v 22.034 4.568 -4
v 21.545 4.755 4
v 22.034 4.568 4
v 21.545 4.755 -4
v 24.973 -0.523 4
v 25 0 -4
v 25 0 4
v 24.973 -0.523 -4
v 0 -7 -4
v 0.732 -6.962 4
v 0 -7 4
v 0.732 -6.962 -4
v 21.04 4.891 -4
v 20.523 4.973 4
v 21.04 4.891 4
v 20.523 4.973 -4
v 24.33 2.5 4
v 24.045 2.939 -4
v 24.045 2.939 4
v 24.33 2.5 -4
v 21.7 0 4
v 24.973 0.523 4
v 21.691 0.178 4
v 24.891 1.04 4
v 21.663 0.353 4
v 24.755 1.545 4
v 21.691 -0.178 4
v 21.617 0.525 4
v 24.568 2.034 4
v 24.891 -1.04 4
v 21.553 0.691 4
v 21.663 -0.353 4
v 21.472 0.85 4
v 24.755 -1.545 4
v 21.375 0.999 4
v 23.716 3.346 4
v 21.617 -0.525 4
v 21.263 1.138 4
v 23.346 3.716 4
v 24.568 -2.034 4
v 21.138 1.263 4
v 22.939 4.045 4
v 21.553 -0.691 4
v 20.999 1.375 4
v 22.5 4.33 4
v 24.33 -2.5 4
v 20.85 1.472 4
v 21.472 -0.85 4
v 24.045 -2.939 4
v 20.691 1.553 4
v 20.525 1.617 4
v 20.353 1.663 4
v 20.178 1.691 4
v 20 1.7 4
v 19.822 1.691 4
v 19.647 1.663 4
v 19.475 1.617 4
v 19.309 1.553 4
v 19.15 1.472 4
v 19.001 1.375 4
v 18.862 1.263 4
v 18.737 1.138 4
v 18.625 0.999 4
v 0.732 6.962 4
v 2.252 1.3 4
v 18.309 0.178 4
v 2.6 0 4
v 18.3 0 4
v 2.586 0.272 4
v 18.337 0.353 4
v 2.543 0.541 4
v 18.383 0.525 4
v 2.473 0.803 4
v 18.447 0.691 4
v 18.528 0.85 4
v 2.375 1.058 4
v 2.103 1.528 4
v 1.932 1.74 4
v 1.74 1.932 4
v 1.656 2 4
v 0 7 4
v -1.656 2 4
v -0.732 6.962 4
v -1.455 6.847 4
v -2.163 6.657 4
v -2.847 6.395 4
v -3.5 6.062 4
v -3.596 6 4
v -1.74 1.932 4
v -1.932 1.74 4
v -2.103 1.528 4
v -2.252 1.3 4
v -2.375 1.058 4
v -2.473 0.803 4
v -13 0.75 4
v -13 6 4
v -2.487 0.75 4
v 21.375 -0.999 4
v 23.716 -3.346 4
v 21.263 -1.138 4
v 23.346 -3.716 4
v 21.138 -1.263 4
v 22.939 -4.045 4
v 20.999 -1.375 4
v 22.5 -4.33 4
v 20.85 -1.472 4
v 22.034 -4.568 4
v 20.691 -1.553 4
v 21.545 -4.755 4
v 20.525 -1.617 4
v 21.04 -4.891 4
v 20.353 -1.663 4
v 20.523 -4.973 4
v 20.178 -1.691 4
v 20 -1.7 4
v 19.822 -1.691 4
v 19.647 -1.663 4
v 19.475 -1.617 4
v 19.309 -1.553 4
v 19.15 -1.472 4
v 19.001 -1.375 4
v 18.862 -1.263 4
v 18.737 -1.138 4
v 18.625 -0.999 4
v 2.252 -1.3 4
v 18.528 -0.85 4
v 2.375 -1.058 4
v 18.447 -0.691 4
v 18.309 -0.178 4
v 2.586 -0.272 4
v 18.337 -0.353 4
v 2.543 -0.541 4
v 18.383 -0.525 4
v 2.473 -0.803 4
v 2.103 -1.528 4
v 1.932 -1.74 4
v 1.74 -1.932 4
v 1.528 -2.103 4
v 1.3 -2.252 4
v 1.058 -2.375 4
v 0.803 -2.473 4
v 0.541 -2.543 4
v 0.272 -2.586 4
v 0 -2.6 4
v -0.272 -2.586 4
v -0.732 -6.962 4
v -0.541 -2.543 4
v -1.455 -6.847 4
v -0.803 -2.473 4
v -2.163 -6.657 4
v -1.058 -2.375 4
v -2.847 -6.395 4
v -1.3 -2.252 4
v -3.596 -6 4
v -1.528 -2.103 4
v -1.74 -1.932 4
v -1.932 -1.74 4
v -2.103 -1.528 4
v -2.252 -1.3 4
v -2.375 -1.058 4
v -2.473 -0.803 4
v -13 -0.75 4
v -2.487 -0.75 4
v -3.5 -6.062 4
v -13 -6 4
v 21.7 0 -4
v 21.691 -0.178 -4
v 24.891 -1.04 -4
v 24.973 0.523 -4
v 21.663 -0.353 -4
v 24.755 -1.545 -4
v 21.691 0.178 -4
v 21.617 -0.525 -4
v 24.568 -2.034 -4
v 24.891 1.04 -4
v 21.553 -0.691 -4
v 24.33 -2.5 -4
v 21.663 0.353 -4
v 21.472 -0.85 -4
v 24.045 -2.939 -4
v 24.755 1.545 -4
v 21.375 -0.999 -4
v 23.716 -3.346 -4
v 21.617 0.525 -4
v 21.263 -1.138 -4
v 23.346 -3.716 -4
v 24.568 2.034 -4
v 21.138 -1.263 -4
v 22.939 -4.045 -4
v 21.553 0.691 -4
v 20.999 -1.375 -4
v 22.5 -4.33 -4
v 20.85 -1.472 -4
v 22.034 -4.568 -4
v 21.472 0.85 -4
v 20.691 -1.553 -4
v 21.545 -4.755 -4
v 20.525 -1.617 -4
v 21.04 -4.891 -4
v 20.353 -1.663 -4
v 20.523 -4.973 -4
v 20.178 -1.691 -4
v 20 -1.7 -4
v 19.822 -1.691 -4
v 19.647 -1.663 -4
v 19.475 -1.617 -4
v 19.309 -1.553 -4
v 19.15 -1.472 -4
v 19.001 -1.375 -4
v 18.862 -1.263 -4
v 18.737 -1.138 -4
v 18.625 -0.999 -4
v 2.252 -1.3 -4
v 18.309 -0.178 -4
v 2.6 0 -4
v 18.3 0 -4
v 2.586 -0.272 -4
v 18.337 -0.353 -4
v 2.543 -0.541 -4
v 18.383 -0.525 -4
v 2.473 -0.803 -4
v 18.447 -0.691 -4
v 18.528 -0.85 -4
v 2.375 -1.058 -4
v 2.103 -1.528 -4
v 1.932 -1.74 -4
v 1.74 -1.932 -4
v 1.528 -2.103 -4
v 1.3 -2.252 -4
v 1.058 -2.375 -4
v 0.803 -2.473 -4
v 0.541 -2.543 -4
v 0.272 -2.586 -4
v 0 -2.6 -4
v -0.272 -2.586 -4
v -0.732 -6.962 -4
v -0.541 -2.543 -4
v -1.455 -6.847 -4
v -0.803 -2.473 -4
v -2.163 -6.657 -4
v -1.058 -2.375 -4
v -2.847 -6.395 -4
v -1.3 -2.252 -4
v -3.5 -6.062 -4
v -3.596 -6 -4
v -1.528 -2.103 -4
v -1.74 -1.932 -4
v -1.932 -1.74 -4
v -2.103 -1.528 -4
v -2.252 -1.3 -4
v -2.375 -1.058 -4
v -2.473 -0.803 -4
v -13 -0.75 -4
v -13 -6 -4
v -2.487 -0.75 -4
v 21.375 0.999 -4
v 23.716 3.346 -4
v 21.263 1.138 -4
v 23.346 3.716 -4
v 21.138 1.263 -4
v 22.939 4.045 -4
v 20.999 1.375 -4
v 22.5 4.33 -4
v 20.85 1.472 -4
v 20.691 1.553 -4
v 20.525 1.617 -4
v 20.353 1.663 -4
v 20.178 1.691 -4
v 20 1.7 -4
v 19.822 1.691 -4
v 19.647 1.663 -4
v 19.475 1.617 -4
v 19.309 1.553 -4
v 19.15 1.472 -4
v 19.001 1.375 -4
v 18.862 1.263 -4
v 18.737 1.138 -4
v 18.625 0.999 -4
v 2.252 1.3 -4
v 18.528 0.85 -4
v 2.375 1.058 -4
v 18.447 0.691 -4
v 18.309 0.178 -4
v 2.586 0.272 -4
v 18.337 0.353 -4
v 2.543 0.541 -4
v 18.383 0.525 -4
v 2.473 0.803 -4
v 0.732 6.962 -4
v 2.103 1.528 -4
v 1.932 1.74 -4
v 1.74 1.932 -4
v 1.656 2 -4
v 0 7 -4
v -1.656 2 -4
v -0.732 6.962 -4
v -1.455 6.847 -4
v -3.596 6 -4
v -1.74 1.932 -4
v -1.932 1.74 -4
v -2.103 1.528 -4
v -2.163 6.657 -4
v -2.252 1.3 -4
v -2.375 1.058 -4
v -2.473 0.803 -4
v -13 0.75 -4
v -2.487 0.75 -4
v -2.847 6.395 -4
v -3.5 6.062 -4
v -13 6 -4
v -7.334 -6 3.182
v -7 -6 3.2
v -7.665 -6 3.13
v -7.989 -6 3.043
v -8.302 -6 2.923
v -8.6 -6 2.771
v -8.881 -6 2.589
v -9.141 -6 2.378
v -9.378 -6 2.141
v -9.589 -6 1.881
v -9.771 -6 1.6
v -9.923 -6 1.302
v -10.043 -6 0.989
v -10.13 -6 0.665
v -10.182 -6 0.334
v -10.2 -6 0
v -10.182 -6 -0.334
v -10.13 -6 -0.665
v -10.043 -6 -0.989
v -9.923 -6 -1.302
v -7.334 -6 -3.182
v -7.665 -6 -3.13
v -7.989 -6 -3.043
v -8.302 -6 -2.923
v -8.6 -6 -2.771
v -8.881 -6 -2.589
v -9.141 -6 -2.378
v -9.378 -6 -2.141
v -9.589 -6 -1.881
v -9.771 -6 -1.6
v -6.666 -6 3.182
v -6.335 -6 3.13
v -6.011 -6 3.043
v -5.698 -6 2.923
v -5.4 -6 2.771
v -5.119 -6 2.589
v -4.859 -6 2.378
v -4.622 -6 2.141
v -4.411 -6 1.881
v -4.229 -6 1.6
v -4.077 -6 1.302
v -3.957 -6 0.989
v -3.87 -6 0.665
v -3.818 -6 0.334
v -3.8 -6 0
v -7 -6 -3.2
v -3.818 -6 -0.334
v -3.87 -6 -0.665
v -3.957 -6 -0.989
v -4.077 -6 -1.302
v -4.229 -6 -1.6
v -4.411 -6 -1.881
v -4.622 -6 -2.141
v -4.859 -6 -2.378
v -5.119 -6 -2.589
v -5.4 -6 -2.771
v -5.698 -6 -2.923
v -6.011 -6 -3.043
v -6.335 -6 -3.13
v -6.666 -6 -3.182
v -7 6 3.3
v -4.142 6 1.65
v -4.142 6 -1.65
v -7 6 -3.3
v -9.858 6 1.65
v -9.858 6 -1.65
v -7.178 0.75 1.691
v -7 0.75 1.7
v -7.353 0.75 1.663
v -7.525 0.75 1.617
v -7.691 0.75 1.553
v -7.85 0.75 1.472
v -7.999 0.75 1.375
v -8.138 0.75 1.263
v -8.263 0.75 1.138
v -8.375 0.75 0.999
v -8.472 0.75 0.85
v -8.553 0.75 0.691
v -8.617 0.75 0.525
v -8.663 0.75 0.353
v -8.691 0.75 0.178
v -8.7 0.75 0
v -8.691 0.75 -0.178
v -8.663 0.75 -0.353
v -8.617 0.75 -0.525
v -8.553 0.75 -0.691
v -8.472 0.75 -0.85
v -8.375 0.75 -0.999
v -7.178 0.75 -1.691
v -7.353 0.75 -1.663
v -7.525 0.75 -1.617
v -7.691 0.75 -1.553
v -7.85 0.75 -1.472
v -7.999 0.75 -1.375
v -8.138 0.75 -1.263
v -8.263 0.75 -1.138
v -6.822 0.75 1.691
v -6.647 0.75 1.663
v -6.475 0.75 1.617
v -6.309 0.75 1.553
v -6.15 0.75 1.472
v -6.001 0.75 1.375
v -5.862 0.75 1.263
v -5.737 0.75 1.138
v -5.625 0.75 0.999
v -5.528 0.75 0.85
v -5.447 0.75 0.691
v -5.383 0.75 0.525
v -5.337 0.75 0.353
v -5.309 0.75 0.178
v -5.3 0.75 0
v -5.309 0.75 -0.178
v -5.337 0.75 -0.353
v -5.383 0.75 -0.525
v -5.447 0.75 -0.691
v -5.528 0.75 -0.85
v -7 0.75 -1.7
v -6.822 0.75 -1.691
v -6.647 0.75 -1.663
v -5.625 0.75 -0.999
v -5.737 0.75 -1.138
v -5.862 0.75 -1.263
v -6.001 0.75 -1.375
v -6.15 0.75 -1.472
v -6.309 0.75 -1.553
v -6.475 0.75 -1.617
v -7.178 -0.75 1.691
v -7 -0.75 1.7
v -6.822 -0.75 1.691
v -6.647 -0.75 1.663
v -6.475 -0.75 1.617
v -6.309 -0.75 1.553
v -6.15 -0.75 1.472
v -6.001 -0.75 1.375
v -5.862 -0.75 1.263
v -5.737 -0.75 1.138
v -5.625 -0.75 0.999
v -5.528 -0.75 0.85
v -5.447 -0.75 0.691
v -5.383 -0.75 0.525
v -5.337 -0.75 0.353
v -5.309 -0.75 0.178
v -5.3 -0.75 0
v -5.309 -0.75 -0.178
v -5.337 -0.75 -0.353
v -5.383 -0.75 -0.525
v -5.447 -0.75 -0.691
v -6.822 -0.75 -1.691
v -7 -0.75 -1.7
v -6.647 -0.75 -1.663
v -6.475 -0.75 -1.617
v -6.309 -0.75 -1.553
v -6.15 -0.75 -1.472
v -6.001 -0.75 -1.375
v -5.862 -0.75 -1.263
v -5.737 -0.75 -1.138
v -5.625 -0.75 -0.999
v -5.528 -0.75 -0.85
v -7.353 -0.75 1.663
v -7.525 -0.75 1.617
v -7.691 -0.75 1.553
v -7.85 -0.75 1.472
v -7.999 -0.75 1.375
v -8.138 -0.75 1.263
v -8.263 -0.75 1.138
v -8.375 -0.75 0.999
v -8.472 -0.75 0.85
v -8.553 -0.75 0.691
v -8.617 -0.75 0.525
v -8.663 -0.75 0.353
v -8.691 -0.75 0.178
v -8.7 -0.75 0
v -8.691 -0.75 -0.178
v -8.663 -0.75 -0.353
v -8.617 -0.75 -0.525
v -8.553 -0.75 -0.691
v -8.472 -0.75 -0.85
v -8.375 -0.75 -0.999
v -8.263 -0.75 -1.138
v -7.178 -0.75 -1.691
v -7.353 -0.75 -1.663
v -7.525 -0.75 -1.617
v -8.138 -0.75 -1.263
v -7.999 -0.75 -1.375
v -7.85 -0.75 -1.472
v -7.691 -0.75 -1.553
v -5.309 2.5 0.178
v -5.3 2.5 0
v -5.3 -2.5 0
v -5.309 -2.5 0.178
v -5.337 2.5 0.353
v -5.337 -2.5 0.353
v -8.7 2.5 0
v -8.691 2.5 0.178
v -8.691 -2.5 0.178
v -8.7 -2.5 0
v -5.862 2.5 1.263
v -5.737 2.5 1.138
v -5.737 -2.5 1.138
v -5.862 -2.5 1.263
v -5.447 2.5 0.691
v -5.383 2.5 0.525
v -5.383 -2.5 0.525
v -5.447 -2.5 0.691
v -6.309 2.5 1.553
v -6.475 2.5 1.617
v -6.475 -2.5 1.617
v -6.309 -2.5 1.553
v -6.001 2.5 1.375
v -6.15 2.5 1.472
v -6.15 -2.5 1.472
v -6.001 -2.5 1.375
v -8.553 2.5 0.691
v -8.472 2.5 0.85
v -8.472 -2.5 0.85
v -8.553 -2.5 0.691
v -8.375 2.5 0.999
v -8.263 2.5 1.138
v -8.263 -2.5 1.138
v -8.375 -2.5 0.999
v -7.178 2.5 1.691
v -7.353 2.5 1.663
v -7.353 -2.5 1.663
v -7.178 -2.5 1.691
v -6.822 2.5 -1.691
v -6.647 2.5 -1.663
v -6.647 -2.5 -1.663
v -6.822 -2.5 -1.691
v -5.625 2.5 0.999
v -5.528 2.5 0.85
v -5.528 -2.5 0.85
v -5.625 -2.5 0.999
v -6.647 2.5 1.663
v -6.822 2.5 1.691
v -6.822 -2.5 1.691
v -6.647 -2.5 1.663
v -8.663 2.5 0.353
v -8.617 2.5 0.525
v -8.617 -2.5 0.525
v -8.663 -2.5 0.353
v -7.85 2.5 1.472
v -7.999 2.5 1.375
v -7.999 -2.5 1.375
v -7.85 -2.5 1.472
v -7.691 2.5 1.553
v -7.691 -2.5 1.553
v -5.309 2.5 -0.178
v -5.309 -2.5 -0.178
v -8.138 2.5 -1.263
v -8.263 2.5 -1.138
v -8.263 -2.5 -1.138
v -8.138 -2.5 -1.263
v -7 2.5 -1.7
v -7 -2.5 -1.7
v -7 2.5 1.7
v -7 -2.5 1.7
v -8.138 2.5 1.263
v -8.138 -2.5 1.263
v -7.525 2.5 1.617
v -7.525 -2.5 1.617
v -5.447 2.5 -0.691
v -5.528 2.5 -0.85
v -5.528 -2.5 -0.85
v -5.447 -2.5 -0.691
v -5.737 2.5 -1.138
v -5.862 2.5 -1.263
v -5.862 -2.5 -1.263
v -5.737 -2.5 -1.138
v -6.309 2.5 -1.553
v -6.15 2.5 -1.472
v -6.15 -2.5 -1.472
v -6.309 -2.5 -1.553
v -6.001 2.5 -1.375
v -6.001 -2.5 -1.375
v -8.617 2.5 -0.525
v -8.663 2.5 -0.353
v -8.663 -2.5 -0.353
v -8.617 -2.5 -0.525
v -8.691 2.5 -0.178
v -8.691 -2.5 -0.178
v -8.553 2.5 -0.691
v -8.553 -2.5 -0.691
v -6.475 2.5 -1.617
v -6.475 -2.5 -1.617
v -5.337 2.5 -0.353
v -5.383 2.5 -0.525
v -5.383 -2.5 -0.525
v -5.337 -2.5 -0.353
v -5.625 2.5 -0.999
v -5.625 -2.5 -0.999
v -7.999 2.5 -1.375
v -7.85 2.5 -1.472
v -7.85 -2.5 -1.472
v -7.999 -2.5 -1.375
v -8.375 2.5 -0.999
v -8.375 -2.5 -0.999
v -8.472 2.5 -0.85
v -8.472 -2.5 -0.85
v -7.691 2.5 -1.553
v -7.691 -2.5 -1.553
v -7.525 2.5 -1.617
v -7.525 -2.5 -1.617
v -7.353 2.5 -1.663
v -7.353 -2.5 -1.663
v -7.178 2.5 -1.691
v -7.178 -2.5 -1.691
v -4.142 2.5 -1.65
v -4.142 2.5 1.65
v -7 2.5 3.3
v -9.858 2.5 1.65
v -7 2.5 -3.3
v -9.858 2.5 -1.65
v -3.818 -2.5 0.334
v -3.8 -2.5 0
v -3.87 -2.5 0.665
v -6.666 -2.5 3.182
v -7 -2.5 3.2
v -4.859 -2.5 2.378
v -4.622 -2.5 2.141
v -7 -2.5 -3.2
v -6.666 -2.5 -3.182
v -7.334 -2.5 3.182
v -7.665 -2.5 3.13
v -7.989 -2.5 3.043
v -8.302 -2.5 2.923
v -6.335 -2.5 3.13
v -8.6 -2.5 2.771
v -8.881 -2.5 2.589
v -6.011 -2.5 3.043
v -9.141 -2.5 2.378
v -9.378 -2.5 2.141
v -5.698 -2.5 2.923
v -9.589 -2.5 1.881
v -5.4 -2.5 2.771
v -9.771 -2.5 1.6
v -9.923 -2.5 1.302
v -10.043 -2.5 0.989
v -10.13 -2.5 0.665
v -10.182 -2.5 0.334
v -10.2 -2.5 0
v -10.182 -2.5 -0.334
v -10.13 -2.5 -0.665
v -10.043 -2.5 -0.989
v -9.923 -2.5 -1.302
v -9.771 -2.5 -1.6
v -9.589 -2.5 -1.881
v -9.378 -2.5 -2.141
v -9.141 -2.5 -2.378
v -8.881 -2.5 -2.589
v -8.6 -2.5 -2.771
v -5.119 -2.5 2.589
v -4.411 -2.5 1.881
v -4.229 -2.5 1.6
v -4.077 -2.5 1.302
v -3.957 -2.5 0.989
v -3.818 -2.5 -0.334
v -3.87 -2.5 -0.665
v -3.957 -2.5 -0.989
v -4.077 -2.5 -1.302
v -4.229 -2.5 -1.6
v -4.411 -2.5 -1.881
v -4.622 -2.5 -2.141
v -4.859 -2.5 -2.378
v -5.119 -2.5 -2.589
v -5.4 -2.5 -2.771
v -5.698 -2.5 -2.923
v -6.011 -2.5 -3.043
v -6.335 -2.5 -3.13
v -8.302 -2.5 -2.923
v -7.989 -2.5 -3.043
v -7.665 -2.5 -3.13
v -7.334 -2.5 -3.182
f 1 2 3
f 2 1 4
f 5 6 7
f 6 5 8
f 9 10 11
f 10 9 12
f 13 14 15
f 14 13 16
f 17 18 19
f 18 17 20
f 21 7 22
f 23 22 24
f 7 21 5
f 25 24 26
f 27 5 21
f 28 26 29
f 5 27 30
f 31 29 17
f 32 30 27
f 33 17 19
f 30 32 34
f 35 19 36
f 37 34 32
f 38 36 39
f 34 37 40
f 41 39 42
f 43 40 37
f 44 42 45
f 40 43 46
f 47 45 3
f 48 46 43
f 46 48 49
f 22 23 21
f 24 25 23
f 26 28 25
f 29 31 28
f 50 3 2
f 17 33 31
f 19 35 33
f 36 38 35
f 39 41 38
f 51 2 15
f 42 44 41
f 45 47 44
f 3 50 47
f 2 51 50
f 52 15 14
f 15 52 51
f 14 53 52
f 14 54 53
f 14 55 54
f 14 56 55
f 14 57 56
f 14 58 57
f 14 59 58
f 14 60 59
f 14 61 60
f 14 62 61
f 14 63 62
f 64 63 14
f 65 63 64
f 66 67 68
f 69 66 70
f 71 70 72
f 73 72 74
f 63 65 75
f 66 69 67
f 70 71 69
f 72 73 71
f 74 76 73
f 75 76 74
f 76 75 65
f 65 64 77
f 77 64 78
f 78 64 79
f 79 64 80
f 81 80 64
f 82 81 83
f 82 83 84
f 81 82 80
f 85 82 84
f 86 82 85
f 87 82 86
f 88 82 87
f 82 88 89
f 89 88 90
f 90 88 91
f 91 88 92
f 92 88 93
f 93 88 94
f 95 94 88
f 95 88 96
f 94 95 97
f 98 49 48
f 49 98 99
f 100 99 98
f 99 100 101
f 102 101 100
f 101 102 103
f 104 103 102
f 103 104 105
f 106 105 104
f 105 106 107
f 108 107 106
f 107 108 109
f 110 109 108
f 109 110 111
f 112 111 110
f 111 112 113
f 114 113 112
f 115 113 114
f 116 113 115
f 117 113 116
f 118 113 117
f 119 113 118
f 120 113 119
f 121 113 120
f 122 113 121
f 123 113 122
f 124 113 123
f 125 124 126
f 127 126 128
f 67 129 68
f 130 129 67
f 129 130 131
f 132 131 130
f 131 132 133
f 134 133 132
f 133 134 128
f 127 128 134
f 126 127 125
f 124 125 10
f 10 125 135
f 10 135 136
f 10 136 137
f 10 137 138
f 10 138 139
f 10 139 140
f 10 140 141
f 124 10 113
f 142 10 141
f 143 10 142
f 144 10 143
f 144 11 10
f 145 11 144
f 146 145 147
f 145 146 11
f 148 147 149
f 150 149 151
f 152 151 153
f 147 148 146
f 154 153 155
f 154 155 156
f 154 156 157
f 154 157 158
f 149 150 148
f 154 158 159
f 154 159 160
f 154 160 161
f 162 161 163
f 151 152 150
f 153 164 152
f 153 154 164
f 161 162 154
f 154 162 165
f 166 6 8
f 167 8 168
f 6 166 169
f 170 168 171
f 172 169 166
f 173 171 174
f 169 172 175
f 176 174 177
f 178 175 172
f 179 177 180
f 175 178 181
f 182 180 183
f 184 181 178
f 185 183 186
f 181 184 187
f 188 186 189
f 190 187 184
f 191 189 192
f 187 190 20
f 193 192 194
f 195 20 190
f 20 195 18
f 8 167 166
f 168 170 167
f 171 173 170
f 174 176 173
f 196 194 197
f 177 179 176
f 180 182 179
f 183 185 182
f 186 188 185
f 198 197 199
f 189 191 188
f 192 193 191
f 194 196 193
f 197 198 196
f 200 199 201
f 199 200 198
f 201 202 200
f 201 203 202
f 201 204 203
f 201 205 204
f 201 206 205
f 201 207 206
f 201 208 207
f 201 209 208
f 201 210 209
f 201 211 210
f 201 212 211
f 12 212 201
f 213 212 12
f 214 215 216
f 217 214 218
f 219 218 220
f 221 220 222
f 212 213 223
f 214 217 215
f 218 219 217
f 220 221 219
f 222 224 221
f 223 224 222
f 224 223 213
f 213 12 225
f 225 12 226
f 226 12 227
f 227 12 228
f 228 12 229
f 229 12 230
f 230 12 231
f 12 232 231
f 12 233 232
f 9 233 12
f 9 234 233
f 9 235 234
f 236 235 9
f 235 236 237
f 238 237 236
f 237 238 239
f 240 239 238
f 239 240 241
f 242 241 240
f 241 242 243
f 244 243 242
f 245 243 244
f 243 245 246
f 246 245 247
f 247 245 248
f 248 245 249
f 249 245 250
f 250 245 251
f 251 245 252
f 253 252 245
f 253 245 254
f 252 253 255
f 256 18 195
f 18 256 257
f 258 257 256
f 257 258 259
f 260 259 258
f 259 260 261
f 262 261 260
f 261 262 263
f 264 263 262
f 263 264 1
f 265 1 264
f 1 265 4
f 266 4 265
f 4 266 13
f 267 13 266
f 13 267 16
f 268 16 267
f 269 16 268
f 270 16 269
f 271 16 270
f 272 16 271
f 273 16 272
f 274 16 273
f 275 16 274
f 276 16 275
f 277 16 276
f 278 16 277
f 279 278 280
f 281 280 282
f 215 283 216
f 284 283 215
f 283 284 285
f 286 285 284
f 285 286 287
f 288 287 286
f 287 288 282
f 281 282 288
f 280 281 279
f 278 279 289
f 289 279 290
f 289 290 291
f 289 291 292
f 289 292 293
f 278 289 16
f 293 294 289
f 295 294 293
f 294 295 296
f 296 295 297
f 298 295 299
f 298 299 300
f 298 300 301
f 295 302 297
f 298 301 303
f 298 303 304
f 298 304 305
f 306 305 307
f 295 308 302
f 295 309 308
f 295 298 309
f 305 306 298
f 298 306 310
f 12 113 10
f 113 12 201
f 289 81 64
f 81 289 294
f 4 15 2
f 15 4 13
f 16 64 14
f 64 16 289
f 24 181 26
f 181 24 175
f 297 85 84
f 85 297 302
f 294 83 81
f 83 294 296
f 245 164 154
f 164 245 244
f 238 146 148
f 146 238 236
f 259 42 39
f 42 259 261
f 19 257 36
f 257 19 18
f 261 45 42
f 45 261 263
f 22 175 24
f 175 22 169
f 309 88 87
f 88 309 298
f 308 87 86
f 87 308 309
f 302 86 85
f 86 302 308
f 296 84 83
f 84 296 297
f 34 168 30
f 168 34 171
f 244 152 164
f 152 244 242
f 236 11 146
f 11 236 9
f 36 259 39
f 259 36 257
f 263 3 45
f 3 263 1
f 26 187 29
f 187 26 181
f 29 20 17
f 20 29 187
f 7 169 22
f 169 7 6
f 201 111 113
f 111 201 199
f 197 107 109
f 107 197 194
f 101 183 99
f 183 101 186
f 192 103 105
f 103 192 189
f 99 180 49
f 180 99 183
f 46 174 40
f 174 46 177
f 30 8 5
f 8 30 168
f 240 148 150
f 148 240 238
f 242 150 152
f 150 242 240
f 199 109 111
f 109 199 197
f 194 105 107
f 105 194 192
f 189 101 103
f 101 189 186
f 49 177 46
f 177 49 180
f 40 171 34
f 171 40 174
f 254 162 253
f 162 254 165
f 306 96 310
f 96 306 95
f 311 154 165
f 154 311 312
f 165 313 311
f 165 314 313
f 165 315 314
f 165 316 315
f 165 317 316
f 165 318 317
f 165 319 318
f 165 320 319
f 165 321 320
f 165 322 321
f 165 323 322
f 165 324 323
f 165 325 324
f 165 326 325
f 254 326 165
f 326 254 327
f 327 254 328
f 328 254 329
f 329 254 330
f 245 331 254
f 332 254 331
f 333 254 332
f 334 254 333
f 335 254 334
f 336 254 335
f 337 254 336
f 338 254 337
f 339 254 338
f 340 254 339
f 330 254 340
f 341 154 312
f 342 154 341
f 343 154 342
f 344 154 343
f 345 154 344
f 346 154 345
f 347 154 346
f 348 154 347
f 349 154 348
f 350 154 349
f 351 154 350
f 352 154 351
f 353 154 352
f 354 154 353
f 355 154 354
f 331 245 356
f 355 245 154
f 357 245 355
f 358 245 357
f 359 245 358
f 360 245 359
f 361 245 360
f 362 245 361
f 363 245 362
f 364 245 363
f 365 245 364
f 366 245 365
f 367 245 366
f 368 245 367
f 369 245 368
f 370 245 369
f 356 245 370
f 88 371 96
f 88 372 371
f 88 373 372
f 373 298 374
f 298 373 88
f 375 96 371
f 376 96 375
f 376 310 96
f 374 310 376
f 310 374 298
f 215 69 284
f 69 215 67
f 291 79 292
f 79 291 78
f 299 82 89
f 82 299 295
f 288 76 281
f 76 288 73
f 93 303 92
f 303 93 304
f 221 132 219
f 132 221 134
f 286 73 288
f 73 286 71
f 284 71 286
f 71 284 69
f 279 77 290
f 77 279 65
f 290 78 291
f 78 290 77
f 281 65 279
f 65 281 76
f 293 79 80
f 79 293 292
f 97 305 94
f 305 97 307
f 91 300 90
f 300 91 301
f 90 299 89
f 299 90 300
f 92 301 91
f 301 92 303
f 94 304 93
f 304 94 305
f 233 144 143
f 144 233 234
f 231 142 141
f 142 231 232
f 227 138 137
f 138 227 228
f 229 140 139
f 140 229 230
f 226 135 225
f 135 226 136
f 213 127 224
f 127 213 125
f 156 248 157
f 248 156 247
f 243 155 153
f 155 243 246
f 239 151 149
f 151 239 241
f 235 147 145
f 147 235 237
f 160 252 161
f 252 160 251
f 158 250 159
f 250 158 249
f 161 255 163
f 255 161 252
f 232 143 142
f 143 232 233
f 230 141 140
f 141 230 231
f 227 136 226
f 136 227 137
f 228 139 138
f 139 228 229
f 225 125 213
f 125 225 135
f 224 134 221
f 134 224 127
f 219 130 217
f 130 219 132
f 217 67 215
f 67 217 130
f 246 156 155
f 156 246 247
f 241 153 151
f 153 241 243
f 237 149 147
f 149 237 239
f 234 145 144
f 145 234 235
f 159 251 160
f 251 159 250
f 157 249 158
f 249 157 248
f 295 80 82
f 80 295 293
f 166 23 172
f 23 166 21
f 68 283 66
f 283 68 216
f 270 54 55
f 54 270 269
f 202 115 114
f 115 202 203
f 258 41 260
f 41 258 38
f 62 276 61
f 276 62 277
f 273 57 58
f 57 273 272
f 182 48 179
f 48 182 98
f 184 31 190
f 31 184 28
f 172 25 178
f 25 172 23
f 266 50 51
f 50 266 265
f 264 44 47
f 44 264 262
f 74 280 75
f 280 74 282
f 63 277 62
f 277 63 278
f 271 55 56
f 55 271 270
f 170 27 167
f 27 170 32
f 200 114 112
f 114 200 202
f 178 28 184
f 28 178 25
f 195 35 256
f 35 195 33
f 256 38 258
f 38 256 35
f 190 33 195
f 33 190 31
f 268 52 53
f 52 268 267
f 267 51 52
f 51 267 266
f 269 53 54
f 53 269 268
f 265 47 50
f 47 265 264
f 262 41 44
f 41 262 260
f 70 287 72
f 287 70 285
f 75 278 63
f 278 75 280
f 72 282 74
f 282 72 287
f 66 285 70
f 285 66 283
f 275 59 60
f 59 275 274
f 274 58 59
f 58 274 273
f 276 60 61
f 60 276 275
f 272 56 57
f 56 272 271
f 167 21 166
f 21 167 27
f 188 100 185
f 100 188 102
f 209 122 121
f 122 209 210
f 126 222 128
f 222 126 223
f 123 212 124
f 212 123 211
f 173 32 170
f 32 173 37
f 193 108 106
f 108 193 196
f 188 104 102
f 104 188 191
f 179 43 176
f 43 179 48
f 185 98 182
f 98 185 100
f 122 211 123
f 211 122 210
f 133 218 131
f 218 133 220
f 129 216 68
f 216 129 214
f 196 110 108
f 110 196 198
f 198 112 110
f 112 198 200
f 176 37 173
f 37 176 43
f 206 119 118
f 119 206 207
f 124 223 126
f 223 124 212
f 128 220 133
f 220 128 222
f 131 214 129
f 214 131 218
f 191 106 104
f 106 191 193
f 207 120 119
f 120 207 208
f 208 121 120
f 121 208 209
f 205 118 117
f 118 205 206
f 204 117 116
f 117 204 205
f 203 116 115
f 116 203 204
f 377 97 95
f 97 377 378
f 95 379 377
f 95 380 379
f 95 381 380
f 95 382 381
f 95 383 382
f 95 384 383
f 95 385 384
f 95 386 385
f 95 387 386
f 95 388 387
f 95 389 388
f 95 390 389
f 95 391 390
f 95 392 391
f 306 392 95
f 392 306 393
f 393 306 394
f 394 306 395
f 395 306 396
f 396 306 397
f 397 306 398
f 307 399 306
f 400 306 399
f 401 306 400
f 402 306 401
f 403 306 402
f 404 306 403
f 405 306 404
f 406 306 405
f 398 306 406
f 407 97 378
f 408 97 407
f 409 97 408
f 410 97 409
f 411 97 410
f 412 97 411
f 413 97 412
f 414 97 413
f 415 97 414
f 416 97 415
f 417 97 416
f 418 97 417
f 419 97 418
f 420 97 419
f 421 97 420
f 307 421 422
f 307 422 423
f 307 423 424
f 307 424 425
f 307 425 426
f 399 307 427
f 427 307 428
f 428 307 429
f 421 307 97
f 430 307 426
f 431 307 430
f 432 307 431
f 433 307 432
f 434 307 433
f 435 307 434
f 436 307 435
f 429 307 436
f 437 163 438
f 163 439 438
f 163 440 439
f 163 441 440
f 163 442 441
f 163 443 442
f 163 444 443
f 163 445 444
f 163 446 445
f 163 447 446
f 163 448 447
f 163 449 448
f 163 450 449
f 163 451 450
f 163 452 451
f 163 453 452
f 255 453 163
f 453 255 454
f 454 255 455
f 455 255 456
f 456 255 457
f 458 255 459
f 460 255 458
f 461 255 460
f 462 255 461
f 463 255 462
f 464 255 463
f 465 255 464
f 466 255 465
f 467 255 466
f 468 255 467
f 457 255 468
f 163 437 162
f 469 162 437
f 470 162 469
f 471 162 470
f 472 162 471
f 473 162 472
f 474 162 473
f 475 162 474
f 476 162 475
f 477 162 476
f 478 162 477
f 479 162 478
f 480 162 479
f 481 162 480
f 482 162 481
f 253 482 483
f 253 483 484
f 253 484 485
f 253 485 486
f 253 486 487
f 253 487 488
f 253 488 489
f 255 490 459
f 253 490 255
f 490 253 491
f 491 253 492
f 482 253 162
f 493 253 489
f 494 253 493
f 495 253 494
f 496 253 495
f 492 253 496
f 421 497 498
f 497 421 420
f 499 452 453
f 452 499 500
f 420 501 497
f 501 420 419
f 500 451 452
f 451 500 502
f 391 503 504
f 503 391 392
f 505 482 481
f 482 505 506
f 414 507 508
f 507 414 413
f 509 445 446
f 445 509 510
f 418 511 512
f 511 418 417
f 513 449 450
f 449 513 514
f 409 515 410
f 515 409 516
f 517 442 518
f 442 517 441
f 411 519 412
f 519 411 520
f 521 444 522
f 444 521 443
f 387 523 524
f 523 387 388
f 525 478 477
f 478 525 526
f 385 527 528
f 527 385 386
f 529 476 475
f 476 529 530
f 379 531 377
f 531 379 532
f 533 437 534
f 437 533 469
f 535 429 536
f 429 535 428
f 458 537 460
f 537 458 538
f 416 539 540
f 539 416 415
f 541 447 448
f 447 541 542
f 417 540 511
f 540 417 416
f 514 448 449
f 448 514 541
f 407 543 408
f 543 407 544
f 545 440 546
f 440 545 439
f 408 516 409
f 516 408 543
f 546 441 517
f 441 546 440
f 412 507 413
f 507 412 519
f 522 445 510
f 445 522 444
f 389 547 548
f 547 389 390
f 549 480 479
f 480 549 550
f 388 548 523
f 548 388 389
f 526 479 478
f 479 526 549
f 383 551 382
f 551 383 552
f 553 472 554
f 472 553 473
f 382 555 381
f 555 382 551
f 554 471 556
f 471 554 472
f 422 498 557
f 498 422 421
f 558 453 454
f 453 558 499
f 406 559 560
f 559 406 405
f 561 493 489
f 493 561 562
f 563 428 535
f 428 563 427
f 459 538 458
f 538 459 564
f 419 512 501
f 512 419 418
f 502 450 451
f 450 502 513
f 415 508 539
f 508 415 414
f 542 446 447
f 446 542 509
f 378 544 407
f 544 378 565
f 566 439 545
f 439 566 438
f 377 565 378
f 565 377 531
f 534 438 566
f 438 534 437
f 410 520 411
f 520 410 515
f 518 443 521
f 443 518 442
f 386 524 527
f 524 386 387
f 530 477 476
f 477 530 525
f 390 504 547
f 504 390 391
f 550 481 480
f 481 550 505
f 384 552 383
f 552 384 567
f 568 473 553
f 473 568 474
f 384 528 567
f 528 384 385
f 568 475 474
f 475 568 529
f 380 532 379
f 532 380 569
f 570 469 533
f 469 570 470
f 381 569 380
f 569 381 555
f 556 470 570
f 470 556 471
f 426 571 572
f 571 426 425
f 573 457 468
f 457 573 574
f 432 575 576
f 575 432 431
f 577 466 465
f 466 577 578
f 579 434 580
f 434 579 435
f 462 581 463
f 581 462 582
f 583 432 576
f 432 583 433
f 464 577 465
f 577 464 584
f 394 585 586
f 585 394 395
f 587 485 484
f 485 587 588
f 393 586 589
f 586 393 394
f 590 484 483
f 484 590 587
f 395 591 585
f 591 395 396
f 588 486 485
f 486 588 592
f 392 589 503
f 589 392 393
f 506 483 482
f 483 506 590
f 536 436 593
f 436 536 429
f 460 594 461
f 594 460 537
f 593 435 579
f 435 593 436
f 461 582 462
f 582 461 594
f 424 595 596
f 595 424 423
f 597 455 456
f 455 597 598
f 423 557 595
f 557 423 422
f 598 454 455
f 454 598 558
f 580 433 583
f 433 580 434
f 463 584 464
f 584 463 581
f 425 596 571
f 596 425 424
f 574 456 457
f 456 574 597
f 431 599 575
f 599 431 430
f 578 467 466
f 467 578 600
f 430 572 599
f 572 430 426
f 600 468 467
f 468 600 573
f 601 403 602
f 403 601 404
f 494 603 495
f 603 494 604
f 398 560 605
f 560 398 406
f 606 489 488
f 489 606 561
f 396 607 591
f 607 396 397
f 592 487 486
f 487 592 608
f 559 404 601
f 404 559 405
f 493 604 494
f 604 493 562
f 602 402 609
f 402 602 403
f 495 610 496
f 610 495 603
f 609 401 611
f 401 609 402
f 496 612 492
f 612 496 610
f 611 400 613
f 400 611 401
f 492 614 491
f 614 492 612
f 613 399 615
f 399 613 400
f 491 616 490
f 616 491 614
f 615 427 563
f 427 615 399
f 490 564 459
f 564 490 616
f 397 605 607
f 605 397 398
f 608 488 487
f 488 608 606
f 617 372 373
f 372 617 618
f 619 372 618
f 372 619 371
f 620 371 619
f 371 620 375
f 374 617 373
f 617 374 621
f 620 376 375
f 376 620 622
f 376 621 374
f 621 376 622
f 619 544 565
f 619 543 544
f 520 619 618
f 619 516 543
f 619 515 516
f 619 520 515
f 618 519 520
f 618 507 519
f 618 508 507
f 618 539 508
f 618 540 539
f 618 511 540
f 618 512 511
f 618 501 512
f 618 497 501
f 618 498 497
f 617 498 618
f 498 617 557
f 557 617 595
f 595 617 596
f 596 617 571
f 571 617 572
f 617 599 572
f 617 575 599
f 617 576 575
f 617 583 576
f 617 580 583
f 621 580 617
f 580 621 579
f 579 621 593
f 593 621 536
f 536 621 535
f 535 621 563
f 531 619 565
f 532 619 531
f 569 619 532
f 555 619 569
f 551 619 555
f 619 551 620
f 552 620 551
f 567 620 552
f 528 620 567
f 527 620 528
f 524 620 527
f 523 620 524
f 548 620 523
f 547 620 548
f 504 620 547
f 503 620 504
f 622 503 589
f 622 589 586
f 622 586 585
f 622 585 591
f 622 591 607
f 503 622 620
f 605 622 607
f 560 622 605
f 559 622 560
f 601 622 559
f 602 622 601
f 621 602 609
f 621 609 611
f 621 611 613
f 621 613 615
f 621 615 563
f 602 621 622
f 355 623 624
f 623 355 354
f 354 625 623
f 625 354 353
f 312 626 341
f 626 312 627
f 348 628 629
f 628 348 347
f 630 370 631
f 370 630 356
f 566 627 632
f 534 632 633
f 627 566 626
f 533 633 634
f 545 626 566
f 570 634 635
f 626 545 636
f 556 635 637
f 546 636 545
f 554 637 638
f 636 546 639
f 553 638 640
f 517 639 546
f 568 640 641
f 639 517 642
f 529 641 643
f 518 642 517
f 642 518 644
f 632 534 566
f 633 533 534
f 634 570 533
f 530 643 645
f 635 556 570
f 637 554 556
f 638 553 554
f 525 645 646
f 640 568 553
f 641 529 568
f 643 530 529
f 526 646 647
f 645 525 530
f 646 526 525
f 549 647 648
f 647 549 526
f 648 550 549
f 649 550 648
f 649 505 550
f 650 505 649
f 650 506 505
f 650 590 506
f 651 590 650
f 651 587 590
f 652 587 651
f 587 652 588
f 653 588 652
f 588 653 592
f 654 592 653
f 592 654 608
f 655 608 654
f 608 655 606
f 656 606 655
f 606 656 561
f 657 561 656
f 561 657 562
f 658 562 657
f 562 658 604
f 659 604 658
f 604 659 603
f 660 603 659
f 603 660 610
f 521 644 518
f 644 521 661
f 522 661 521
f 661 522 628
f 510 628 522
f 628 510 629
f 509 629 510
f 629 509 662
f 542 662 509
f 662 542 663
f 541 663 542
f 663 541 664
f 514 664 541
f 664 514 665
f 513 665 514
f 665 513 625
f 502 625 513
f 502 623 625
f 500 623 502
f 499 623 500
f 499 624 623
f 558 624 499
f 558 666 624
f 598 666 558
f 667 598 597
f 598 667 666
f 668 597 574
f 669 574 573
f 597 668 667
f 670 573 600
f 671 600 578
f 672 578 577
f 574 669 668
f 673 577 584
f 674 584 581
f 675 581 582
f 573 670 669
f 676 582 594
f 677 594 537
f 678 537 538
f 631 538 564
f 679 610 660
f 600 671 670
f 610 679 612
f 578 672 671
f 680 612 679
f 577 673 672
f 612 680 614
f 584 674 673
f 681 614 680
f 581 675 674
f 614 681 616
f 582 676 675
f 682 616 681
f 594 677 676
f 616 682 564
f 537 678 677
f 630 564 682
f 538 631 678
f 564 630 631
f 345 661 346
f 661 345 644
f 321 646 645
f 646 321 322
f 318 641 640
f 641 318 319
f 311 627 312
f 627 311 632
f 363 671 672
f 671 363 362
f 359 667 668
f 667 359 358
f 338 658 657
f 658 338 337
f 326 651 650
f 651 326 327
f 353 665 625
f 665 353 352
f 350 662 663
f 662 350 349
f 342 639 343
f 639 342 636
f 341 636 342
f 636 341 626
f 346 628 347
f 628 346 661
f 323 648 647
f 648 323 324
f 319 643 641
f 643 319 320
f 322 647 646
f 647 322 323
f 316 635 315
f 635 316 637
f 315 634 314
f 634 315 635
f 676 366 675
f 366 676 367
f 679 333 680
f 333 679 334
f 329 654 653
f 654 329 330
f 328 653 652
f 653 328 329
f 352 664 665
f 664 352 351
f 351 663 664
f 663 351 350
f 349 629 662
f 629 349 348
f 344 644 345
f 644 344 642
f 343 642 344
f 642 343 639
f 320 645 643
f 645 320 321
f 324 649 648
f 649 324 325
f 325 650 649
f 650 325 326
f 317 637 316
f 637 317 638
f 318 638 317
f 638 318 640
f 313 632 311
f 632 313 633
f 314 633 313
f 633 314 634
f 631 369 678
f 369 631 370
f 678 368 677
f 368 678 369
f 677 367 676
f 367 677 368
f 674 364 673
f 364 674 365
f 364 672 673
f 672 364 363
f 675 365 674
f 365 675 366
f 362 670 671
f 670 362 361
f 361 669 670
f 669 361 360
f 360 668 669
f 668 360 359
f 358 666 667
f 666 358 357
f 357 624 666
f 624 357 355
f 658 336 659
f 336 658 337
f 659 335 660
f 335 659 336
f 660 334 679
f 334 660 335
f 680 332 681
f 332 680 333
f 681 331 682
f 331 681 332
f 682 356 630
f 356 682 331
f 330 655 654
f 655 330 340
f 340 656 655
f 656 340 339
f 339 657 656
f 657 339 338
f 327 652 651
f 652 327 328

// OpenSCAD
// clamping_motor_horn.scad - 3D Printable Motor Horn (STL Export)
// Features a friction-clamp design with an integrated M3 nut trap for zero-slip torque.

$fn = 60;

// --- User Parameters ---
throw_length = 20.0;      // Distance from motor shaft center to the Traxxas rod end
horn_thickness = 8.0;     // Overall thickness of the horn

hub_dia = 14.0;           // Outer diameter of the central hub
tip_dia = 10.0;           // Outer diameter of the tip (where the rod end attaches)

shaft_dia = 5.2;          // 5mm motor shaft + 0.2mm 3D printing tolerance
flat_depth = 0.6;         // Depth of the NEMA 17 D-shaft flat
m3_clearance = 1.7;       // 3.4mm diameter for M3 bolts to pass through freely


// --- Cutout Modules ---

// The D-Shaft profile
module d_shaft_cutout() {
    difference() {
        cylinder(r=shaft_dia/2, h=horn_thickness + 2, center=true);
        // Slices off the top edge to create the flat for the D-shaft
        translate([0, (shaft_dia/2) - flat_depth + 2.5, 0])
            cube([shaft_dia+2, 5, horn_thickness + 4], center=true);
    }
}

// --- Main Horn Geometry ---

difference() {
    // 1. --- MAIN SOLID BODY ---
    union() {
        // The lever arm
        hull() {
            cylinder(r=hub_dia/2, h=horn_thickness, center=true);
            translate([throw_length, 0, 0]) 
                cylinder(r=tip_dia/2, h=horn_thickness, center=true);
        }
        
        // The clamping block (extends backwards from the shaft)
        translate([-7, 0, 0]) 
            cube([12, 12, horn_thickness], center=true);
    }
    
    // 2. --- NEGATIVE CUTOUTS ---
    
    // Motor Shaft
    d_shaft_cutout();
    
    // Linkage Hole (For attaching the Traxxas rod end with an M3 bolt)
    translate([throw_length, 0, 0]) 
        cylinder(r=m3_clearance, h=horn_thickness + 2, center=true);
        
    // Clamping Slit (Allows the plastic to flex and grip the shaft)
    translate([-10, 0, 0]) 
        cube([20, 1.5, horn_thickness + 2], center=true);
        
    // Clamping Bolt Hole (Passes perpendicularly through the slit)
    translate([-7, 0, 0]) 
        rotate([90, 0, 0]) 
        cylinder(r=m3_clearance, h=20, center=true);
        
    // M3 Hex Nut Trap
    // Fits a standard M3 nut. Drop the nut in here, it locks in place so you can tighten from the other side.
    translate([-7, 4.5, 0]) 
        rotate([90, 30, 0]) 
        cylinder(r=3.3, h=4, $fn=6, center=true);
        
    // Bolt Head Recess
    // Sinks the head of the M3 cap screw into the plastic so it looks clean.
    translate([-7, -4.5, 0]) 
        rotate([90, 0, 0]) 
        cylinder(r=3.2, h=4, center=true);
}
